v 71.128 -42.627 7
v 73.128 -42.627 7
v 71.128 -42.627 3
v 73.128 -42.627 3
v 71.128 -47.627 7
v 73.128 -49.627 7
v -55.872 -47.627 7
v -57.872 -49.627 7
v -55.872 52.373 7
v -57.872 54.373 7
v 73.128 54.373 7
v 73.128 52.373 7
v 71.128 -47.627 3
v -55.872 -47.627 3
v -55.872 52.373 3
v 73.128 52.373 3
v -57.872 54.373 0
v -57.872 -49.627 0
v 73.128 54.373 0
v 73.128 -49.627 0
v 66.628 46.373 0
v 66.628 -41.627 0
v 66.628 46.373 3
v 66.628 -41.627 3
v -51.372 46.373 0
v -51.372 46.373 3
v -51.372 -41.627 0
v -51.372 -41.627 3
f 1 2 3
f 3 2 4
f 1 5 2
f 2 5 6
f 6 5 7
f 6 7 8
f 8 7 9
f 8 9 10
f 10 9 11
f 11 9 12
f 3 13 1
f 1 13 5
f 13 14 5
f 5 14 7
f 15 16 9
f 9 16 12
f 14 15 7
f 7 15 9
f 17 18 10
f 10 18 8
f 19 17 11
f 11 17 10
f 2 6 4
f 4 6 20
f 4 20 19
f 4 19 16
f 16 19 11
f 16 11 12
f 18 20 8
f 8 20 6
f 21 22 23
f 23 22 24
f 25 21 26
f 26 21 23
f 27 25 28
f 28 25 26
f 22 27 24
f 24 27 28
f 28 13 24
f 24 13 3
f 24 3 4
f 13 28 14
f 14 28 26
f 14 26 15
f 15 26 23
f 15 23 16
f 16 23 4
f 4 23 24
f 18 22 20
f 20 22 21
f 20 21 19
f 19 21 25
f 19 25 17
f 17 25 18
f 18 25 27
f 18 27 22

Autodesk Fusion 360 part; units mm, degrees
sketch "Sketch2" plane through (0, 0, 0) normal (0, 0, 1) x (1, 0, 0)
  line L0 (-55.8718, 52.373) -> (71.1282, 52.373)
  line L1 (71.1282, 52.373) -> (71.1282, -47.627)
  line L2 (71.1282, -47.627) -> (-55.8718, -47.627)
  line L3 (-55.8718, -47.627) -> (-55.8718, 52.373)
  line L4 (-51.3718, 46.373) -> (66.6282, 46.373)
  line L5 (66.6282, 46.373) -> (66.6282, -41.627)
  line L6 (66.6282, -41.627) -> (-51.3718, -41.627)
  line L7 (-51.3718, -41.627) -> (-51.3718, 46.373)
  line L8 (-57.8718, 54.373) -> (73.1282, 54.373)
  line L9 (73.1282, 54.373) -> (73.1282, -49.627)
  line L10 (73.1282, -49.627) -> (-57.8718, -49.627)
  line L11 (-57.8718, -49.627) -> (-57.8718, 54.373)
  dimension "d1" = 127
  dimension "d2" = 100
  dimension "d3" = 118
  dimension "d4" = 88
  dimension "d5" = 131
  dimension "d6" = 104
  dimension "d7" = 2
  dimension "d8" = 2
  dimension "d43" = 4.5
  dimension "d44" = 6
extrude "Extrude7" add sketch "Sketch2" along normal blind 3 contours L0 L1 L2 L3
extrude "Extrude8" add sketch "Sketch2" along normal blind 7 contours L8 L9 L10 L11
sketch "Sketch9" plane through (0, 0, 7) normal (0, 0, 1) x (-1, 0, 0)
  line L0 (-71.1282, 47.627) -> (55.8718, 47.627)
  line L1 (55.8718, 47.627) -> (55.8718, -52.373)
  line L2 (55.8718, -52.373) -> (-71.1282, -52.373)
  line L3 (-71.1282, -52.373) -> (-71.1282, 47.627)
  line L4 (57.8718, 49.627) -> (-73.1282, 49.627)
  line L5 (-73.1282, 49.627) -> (-73.1282, -54.373)
  line L6 (-73.1282, -54.373) -> (57.8718, -54.373)
  line L7 (57.8718, -54.373) -> (57.8718, 49.627)
  line L8 (-71.1282, -52.373) -> (-73.1282, -52.373)
  line L9 (-73.1282, -52.373) -> (-73.1282, 42.627)
  line L10 (-73.1282, 42.627) -> (-71.1282, 42.627)
  line L11 (-71.1282, 42.627) -> (-71.1282, -52.373)
  dimension "d39" = 95
extrude "Extrude9" cut sketch "Sketch9" against normal blind 4 contours L3 L5 L8 L9 L10 L11
